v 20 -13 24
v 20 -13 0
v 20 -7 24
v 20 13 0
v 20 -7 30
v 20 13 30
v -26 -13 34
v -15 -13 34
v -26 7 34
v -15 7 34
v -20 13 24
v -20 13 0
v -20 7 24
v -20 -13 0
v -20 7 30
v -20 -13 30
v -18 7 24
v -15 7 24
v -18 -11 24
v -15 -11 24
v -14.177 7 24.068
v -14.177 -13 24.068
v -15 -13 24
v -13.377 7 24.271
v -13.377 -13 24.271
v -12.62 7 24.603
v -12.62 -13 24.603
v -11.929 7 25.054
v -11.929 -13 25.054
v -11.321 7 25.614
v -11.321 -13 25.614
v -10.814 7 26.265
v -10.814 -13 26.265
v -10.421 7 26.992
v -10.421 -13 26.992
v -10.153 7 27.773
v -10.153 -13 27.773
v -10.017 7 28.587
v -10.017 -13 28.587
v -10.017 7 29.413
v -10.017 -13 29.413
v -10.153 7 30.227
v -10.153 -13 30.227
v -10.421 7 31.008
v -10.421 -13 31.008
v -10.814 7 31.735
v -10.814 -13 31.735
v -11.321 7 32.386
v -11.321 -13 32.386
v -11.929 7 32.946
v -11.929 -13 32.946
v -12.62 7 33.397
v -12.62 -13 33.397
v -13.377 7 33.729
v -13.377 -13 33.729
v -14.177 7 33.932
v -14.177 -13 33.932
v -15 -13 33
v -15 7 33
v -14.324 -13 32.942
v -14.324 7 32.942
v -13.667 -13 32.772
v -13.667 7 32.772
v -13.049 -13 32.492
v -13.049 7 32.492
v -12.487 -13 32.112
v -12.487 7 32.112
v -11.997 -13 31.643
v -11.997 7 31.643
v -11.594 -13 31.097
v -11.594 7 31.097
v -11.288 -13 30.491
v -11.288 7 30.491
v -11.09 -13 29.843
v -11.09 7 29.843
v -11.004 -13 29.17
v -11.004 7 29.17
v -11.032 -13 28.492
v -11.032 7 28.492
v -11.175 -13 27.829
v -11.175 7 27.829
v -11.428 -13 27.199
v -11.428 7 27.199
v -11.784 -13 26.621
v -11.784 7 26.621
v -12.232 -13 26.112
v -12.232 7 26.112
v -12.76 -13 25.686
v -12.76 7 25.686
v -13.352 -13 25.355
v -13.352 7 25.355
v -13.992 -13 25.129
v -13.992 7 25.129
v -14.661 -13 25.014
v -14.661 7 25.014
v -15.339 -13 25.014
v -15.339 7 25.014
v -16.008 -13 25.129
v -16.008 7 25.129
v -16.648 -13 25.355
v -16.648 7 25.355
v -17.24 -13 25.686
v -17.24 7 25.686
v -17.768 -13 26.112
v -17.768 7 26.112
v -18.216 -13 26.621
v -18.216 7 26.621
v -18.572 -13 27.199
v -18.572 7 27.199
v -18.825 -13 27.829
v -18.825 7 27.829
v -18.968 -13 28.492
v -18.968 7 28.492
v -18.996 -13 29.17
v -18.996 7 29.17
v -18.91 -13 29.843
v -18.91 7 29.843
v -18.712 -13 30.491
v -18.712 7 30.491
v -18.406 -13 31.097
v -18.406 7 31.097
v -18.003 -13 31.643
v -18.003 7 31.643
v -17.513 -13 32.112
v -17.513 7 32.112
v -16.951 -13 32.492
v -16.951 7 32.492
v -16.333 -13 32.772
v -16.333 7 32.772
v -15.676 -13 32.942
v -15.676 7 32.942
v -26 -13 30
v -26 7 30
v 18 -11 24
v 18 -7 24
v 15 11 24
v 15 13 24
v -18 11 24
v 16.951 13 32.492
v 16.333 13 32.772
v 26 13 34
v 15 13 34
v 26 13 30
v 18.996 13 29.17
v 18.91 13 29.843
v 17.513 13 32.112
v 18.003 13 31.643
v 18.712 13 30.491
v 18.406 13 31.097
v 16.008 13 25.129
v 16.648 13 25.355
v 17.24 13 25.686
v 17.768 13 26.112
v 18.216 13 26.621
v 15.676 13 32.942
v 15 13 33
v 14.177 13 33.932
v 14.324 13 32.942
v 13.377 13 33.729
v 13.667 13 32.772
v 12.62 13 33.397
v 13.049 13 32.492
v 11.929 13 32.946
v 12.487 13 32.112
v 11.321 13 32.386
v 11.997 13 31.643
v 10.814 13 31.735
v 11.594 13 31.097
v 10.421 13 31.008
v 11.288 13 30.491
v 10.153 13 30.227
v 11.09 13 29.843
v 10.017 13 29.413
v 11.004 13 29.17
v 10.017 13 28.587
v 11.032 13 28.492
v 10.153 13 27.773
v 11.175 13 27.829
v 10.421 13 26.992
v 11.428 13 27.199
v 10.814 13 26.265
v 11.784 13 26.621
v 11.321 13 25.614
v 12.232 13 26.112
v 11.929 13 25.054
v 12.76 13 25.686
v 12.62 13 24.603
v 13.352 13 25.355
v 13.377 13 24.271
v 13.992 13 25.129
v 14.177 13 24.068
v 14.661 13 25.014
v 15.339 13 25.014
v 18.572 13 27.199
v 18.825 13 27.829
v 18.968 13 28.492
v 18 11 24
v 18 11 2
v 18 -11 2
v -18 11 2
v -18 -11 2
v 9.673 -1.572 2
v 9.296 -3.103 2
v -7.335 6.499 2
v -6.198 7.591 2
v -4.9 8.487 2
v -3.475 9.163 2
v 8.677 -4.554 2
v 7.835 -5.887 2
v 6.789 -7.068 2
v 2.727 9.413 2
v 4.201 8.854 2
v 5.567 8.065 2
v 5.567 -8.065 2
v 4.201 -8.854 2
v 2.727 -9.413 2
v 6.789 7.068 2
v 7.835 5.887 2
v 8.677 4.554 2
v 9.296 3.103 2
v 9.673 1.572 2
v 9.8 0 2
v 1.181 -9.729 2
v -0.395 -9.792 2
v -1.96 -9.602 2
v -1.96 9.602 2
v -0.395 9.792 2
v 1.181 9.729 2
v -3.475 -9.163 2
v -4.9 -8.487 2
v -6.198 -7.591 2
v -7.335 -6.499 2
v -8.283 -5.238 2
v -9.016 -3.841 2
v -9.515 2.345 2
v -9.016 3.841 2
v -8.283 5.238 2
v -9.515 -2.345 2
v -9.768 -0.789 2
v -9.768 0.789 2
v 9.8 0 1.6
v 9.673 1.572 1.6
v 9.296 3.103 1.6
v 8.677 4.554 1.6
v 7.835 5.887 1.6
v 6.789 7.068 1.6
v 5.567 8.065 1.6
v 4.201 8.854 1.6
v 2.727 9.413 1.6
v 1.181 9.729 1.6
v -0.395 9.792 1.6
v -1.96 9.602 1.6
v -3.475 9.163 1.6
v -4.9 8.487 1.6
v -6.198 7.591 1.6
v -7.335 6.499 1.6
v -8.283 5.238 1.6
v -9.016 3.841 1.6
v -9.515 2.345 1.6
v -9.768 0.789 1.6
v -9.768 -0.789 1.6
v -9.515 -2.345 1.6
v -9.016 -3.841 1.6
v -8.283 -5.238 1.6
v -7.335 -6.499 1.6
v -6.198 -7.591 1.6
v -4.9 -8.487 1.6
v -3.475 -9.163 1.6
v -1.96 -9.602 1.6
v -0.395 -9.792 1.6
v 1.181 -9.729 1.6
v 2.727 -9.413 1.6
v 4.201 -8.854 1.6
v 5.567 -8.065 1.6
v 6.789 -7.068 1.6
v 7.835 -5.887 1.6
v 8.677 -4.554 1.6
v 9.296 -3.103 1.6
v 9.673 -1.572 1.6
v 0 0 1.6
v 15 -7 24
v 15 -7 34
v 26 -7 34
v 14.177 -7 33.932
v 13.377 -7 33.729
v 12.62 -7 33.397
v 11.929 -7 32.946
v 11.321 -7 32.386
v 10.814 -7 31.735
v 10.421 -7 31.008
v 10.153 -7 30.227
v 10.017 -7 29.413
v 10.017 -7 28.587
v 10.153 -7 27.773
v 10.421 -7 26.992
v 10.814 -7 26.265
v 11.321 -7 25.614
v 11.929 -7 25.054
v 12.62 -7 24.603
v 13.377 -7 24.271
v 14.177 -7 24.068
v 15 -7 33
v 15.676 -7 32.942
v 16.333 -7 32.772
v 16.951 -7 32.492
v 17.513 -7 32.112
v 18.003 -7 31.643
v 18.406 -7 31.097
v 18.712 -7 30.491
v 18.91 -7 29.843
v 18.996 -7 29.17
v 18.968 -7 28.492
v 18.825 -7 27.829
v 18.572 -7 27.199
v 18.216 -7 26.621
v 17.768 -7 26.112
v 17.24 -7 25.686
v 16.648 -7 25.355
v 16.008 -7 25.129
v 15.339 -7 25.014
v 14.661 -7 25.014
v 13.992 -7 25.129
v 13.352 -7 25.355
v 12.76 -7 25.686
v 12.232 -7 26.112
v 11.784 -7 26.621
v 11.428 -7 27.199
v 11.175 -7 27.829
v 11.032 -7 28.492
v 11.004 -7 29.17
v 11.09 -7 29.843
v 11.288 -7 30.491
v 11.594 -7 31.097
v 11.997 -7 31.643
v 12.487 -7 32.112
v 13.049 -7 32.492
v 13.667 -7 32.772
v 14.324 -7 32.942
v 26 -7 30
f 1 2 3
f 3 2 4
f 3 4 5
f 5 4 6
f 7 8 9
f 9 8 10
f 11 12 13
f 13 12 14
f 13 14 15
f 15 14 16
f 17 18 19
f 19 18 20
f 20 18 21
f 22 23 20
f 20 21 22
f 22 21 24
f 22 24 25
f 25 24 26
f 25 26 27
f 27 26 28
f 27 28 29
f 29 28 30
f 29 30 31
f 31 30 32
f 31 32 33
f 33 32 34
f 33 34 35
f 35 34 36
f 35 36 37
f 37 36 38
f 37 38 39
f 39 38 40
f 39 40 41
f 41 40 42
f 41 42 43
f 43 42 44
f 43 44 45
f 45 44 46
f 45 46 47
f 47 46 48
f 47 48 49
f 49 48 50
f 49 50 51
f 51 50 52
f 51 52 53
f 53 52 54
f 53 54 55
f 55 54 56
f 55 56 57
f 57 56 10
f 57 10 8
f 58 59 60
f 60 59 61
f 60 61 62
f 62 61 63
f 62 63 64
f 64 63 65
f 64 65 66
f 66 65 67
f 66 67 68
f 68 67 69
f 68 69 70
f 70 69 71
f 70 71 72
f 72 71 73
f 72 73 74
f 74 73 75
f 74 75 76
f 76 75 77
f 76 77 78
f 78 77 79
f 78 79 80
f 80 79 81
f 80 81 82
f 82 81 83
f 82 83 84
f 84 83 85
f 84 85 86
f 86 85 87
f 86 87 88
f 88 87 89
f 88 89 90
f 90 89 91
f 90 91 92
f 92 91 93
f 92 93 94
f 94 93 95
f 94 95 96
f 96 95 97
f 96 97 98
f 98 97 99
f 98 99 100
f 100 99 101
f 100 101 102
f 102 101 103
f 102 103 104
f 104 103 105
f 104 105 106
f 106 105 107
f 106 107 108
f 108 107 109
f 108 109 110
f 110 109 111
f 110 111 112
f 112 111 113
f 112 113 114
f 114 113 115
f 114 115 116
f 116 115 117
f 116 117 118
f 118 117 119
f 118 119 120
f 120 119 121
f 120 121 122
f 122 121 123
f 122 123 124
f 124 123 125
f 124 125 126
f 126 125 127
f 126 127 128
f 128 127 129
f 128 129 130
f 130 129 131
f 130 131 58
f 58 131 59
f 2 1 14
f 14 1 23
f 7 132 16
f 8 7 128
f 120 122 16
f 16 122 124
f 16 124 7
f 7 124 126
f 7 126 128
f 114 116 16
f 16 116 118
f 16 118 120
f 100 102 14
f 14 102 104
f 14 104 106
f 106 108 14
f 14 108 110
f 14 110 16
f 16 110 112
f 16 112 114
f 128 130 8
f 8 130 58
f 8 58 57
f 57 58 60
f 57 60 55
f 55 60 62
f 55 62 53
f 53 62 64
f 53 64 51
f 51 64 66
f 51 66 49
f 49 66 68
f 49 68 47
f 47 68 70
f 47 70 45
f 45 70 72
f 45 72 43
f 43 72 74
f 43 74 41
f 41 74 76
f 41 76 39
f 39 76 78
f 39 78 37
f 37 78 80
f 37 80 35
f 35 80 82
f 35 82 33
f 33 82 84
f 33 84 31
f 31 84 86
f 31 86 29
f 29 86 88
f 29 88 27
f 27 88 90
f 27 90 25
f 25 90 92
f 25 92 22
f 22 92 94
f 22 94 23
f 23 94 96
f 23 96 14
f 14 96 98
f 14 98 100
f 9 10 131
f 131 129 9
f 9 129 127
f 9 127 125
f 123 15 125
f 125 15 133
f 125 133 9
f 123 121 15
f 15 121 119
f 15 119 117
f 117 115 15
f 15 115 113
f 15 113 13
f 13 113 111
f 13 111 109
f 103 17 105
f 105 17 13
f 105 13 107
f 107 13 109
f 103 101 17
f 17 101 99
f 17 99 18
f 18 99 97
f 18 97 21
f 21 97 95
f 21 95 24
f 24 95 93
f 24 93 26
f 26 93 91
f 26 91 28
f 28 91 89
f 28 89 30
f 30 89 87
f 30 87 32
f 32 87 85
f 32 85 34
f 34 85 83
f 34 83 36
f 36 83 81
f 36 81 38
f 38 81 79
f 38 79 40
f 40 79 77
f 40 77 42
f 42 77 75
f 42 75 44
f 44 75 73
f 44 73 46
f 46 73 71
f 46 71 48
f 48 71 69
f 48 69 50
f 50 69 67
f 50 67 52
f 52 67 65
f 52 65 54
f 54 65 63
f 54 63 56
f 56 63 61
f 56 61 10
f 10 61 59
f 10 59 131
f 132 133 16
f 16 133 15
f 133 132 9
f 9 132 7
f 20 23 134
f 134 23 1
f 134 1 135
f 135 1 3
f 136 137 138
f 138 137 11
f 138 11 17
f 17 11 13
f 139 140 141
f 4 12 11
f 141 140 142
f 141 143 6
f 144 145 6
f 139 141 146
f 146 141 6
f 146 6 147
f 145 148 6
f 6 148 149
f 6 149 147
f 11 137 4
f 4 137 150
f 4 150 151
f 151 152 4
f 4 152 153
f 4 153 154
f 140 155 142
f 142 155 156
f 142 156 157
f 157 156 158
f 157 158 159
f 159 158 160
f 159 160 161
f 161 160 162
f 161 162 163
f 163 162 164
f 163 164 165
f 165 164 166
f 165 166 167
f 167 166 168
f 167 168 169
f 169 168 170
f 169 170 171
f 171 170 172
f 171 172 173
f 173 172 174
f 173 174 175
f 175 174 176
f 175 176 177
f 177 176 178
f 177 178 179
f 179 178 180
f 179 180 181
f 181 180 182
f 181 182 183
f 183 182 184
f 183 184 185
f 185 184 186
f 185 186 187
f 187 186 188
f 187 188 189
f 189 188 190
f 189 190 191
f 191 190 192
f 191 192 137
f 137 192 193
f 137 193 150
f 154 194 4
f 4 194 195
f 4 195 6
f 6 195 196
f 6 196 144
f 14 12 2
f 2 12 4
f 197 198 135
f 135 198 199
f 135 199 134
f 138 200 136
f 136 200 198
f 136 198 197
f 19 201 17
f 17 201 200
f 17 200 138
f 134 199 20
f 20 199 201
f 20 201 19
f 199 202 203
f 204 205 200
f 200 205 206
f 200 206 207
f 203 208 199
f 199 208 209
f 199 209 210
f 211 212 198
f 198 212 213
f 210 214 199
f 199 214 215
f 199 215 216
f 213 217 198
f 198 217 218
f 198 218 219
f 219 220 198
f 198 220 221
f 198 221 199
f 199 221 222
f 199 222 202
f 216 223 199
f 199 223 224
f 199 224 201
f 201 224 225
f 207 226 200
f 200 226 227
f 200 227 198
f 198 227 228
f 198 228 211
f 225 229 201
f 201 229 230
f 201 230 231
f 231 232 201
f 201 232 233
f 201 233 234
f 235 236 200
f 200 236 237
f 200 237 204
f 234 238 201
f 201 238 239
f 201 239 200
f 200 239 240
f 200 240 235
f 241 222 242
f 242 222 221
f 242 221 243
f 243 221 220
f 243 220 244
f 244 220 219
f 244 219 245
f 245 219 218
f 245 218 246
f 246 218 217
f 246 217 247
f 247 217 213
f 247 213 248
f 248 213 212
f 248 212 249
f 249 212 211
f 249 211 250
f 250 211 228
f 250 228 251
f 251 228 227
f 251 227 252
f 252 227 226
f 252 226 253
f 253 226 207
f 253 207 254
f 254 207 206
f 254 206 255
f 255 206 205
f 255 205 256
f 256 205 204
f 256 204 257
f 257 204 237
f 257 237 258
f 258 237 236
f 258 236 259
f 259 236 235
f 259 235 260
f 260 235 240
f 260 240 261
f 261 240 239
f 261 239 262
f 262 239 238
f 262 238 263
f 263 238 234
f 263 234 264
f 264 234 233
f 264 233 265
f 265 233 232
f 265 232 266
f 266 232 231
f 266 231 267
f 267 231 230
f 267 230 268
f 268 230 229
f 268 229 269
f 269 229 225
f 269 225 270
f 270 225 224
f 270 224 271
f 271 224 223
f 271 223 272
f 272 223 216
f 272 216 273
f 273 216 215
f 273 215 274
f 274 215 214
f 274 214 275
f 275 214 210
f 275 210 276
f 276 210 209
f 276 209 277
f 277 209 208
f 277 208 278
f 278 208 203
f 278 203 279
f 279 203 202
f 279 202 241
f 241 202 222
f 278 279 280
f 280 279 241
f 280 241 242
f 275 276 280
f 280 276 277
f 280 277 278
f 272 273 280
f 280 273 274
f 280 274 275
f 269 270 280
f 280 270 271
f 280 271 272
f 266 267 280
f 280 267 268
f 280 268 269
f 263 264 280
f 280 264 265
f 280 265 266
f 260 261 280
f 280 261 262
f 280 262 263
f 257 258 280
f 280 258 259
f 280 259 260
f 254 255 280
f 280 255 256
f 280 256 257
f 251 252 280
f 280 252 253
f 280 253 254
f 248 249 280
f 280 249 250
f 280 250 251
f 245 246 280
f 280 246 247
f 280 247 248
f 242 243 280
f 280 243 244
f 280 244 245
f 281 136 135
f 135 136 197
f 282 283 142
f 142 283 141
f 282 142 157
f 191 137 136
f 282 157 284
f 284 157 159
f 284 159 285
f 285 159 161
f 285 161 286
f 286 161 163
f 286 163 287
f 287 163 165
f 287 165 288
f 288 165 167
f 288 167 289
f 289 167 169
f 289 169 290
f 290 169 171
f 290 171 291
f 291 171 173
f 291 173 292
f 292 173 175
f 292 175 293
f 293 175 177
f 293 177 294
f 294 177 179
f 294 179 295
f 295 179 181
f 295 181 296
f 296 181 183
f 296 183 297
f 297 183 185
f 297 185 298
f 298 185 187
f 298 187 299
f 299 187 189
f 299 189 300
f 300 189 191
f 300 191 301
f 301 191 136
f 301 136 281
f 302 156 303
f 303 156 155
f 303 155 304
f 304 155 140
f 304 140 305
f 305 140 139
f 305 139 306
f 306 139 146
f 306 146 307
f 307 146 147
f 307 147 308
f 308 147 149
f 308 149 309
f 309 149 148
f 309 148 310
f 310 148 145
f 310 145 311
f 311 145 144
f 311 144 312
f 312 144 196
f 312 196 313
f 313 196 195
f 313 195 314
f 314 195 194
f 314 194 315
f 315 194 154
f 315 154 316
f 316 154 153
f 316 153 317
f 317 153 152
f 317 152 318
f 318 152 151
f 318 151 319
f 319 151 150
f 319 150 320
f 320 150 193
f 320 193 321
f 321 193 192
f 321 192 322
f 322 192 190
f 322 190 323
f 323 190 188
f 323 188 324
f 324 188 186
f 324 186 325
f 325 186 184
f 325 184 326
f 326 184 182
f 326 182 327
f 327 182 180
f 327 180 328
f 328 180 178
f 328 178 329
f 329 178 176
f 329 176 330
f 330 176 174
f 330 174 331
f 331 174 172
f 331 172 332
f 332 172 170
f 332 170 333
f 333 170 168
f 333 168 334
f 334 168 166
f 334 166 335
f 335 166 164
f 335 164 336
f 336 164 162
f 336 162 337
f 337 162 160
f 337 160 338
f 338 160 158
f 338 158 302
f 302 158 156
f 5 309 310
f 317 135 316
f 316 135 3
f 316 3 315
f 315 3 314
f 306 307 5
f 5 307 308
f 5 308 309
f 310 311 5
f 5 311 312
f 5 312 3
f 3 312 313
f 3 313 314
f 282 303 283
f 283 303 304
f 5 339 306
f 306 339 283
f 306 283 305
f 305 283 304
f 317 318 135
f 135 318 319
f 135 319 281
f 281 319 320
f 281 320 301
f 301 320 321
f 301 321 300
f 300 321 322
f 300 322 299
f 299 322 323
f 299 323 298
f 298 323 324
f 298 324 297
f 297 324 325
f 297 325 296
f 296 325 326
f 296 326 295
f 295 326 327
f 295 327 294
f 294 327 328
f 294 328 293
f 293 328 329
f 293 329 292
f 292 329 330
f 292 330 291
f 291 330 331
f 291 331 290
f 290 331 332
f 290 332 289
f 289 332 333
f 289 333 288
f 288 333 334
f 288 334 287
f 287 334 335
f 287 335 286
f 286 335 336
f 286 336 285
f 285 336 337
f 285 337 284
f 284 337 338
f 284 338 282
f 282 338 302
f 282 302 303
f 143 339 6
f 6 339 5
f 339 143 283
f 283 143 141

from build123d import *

# Parameters (mm, degrees)
SKETCH_1_W          = 20
SKETCH_1_H          = 13
EXTRUDE_1_DEPTH     = 12
SHELL_1_T           = -1
SKETCH_2_R          = 2.5
SKETCH_2_R_2        = 2
EXTRUDE_4_DEPTH     = 10
SKETCH_3_R          = 4.9
CUT_EXTRUDE_1_DEPTH = 0.2
SKETCH_9_R          = 2.5
SKETCH_9_R_2        = 2
EXTRUDE_8_DEPTH     = 10
SKETCH_6_W          = 2
SKETCH_6_H          = 10
EXTRUDE_10_DEPTH    = 3
SKETCH_10_W         = 2
SKETCH_10_H         = 10
EXTRUDE_11_DEPTH    = 3
SCALE_1_SCALE       = 2


with BuildPart() as part:
    # 스케치1 → 보스-돌출1 (new body)
    with BuildSketch(Plane.XY):
        Rectangle(SKETCH_1_W, SKETCH_1_H)
    extrude(amount=EXTRUDE_1_DEPTH)

    # 쉘1
    shell_1_openings = [part.faces().sort_by_distance(p)[0] for p in [
        (0, 0, 12),
    ]]
    offset(amount=SHELL_1_T, openings=shell_1_openings, kind=Kind.INTERSECTION)

    # 스케치3 → 컷-돌출1 (cut)
    with BuildSketch(Plane.XY.offset(1)):
        Circle(SKETCH_3_R)
    extrude(amount=-CUT_EXTRUDE_1_DEPTH, mode=Mode.SUBTRACT)

    # 스케치9 → 보스-돌출8 (add)
    # profile 1 of 3: a face of its own
    with BuildSketch(Plane(origin=(0, 6.5, 0), x_dir=(1, 0, 0), z_dir=(0, 1, 0))):
        with BuildLine():
            Line((10, -14.5), (10, -12))
            Line((10, -12), (7.5, -12))
            ThreePointArc((7.5, -12), (9.267766953, -12.732233047), (10, -14.5))
        make_face()
    # profile 2 of 3: a face of its own
    with BuildSketch(Plane(origin=(0, 6.5, 0), x_dir=(1, 0, 0), z_dir=(0, 1, 0))):
        with BuildLine():
            Line((10, -17), (10, -14.5))
            ThreePointArc((10, -14.5), (9.267766953, -16.267766953), (7.5, -17))
            Line((7.5, -17), (10, -17))
        make_face()
    # profile 3 of 3: a face of its own
    with BuildSketch(Plane(origin=(0, 6.5, 0), x_dir=(1, 0, 0), z_dir=(0, 1, 0))):
        with Locations((7.5, -14.5)):
            Circle(SKETCH_9_R)
        with Locations(Location((7.5, -14.5, 0), (0, 0, 270))):
            Circle(SKETCH_9_R_2, mode=Mode.SUBTRACT)
    extrude(amount=-EXTRUDE_8_DEPTH)


with BuildPart() as body_2:
    # 스케치2 → 보스-돌출4 (new body)
    # profile 1 of 3: a face of its own
    with BuildSketch(Plane(origin=(0, 3.5, 0), x_dir=(1, 0, 0), z_dir=(0, 1, 0))):
        with BuildLine():
            ThreePointArc((-7.5, -17), (-9.267766953, -16.267766953), (-10, -14.5))
            Line((-10, -14.5), (-10, -17))
            Line((-10, -17), (-7.5, -17))
        make_face()
    # profile 2 of 3: a face of its own
    with BuildSketch(Plane(origin=(0, 3.5, 0), x_dir=(1, 0, 0), z_dir=(0, 1, 0))):
        with Locations((-7.5, -14.5)):
            Circle(SKETCH_2_R)
        with Locations(Location((-7.5, -14.5, 0), (0, 0, 270))):
            Circle(SKETCH_2_R_2, mode=Mode.SUBTRACT)
    # profile 3 of 3: a face of its own
    with BuildSketch(Plane(origin=(0, 3.5, 0), x_dir=(1, 0, 0), z_dir=(0, 1, 0))):
        with BuildLine():
            Line((-7.5, -12), (-10, -12))
            Line((-10, -12), (-10, -14.5))
            ThreePointArc((-10, -14.5), (-9.267766953, -12.732233047), (-7.5, -12))
        make_face()
    extrude(amount=-EXTRUDE_4_DEPTH)


    add(part.part)  # 보스-돌출10 merges part
    # 스케치6 → 보스-돌출10 (add)
    with BuildSketch(Plane.ZY.offset(10)):
        with Locations((16, -1.5)):
            Rectangle(SKETCH_6_W, SKETCH_6_H)
    extrude(amount=EXTRUDE_10_DEPTH)

    # 스케치10 → 보스-돌출11 (add)
    with BuildSketch(Plane(origin=(10, 0, 0), x_dir=(0, 0, -1), z_dir=(1, 0, 0))):
        with Locations((-16, 1.5)):
            Rectangle(SKETCH_10_W, SKETCH_10_H)
    extrude(amount=EXTRUDE_11_DEPTH)


with BuildPart() as body_2_1:
    # 축척1: scaled about (0, 0, 0)
    add(body_2.part.scale(SCALE_1_SCALE))


solid = body_2_1.part
